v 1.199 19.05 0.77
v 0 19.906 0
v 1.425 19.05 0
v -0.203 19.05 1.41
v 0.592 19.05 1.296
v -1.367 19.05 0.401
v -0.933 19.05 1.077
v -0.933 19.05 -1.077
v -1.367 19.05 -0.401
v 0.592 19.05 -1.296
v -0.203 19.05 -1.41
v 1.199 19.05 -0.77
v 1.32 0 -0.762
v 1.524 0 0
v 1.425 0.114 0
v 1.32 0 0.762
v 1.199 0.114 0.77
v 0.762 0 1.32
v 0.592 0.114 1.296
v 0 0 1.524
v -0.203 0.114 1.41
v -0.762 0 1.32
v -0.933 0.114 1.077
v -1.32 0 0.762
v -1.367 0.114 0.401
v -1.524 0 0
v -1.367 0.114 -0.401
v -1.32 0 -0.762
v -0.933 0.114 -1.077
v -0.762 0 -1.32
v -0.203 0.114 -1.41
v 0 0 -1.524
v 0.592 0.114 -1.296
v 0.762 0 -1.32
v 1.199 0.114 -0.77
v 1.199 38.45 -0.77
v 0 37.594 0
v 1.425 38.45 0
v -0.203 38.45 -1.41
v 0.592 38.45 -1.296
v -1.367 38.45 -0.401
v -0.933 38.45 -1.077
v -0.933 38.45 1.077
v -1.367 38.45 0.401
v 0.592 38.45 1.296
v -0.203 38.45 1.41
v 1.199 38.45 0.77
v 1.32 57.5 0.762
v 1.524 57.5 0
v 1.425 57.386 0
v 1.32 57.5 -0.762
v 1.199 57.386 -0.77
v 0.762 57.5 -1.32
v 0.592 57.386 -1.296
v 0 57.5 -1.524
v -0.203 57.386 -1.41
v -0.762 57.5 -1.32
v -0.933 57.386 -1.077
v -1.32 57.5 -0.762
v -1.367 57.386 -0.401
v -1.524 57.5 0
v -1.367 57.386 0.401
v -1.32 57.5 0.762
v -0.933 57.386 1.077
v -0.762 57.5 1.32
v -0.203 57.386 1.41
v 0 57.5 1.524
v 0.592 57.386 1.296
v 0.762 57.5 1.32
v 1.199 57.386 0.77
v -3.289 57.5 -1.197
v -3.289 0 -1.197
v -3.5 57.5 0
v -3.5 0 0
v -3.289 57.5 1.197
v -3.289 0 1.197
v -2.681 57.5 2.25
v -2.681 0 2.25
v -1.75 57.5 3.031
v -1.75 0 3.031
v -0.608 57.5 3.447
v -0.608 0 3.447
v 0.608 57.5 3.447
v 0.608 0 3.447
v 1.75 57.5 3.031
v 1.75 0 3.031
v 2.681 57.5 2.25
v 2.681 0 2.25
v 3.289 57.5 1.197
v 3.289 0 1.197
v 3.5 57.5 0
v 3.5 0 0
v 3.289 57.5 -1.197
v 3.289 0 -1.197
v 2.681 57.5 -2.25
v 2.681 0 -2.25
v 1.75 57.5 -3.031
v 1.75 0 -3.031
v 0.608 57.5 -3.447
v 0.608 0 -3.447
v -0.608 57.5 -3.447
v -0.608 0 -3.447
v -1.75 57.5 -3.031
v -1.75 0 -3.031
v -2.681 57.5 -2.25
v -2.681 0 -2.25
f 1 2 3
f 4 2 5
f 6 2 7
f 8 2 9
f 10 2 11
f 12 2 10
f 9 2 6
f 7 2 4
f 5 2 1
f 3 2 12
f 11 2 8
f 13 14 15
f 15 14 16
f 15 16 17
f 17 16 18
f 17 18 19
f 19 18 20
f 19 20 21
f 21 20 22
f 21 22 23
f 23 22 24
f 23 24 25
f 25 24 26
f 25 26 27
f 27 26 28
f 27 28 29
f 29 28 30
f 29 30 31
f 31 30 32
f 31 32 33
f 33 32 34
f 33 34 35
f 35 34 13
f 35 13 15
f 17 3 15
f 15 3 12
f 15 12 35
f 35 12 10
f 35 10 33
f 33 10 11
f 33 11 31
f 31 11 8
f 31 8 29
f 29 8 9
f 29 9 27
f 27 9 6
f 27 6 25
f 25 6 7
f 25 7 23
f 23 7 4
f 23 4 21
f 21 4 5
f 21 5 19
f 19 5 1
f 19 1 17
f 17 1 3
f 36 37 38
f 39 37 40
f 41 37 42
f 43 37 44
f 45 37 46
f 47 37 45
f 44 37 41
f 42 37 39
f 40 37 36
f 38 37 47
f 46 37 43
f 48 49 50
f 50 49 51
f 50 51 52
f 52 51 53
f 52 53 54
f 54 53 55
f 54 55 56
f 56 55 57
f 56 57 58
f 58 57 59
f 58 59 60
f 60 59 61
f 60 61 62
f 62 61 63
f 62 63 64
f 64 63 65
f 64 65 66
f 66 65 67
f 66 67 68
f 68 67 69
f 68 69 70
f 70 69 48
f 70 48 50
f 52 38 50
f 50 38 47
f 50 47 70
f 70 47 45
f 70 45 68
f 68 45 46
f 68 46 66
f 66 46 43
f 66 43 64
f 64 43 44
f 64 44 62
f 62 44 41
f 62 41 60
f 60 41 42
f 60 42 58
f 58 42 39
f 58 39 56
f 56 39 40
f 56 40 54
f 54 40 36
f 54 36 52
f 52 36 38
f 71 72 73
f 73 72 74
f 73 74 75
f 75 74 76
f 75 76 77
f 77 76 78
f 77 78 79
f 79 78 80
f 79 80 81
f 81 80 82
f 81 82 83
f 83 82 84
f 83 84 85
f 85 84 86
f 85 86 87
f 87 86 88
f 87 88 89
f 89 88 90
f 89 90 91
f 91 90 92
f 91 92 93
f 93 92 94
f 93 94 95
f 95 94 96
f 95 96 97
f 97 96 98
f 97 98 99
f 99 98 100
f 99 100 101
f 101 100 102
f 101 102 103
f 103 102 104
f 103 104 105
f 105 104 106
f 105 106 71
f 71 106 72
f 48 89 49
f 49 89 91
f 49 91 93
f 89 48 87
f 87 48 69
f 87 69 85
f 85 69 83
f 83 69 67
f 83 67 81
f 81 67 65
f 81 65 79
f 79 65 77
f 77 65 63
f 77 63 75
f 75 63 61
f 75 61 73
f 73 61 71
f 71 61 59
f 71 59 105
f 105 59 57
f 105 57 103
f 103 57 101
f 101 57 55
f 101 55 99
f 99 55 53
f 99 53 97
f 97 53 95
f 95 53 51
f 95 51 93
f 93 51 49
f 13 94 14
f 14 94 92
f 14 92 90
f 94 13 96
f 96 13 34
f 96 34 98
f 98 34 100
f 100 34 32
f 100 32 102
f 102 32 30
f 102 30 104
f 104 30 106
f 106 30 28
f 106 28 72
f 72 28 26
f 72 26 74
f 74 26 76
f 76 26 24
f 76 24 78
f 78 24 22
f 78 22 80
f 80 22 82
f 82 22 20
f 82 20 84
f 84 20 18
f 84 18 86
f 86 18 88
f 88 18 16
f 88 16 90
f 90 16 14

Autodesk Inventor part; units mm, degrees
ref_plane "YZ Plane" through (0, 0, 0) normal (1, 0, 0) x (0, 1, 0)
ref_plane "XZ Plane" through (0, 0, 0) normal (0, 1, 0) x (-1, 0, 0)
ref_plane "XY Plane" through (0, 0, 0) normal (0, 0, 1) x (1, 0, 0)
sketch "Sketch1" plane through (0, 0, 0) normal (0, 1, 0) x (-1, 0, 0)
  circle A0 centre (0, 0) radius 3.5
  dimension "d0" = 7
extrude "Extrusion1" add sketch "Sketch1" along normal blind 57.5
sketch "Sketch2" plane through (0, 57.5, 0) normal (0, 1, 0) x (1, 0, 0)
  circle A0 centre (0, 0) radius 0.9252
hole "Hole1" at (0, 57.5, 0) direction (0, -1, 0) diameter 2.85 depth 19.05 tip angle 118 countersink diameter 3.048 countersink angle 82 thread size "M3.5x0.6" class "6H" standard "ANSI Metric M Profile"
sketch "Sketch3" plane through (0, 0, 0) normal (0, -1, 0) x (1, 0, 0)
  circle A0 centre (0, 0) radius 1.2742
hole "Hole2" at (0, 0, 0) direction (0, 1, 0) diameter 2.85 depth 19.05 tip angle 118 countersink diameter 3.048 countersink angle 82 thread size "M3.5x0.6" class "6H" standard "ANSI Metric M Profile"
properties part number "Connectors"
